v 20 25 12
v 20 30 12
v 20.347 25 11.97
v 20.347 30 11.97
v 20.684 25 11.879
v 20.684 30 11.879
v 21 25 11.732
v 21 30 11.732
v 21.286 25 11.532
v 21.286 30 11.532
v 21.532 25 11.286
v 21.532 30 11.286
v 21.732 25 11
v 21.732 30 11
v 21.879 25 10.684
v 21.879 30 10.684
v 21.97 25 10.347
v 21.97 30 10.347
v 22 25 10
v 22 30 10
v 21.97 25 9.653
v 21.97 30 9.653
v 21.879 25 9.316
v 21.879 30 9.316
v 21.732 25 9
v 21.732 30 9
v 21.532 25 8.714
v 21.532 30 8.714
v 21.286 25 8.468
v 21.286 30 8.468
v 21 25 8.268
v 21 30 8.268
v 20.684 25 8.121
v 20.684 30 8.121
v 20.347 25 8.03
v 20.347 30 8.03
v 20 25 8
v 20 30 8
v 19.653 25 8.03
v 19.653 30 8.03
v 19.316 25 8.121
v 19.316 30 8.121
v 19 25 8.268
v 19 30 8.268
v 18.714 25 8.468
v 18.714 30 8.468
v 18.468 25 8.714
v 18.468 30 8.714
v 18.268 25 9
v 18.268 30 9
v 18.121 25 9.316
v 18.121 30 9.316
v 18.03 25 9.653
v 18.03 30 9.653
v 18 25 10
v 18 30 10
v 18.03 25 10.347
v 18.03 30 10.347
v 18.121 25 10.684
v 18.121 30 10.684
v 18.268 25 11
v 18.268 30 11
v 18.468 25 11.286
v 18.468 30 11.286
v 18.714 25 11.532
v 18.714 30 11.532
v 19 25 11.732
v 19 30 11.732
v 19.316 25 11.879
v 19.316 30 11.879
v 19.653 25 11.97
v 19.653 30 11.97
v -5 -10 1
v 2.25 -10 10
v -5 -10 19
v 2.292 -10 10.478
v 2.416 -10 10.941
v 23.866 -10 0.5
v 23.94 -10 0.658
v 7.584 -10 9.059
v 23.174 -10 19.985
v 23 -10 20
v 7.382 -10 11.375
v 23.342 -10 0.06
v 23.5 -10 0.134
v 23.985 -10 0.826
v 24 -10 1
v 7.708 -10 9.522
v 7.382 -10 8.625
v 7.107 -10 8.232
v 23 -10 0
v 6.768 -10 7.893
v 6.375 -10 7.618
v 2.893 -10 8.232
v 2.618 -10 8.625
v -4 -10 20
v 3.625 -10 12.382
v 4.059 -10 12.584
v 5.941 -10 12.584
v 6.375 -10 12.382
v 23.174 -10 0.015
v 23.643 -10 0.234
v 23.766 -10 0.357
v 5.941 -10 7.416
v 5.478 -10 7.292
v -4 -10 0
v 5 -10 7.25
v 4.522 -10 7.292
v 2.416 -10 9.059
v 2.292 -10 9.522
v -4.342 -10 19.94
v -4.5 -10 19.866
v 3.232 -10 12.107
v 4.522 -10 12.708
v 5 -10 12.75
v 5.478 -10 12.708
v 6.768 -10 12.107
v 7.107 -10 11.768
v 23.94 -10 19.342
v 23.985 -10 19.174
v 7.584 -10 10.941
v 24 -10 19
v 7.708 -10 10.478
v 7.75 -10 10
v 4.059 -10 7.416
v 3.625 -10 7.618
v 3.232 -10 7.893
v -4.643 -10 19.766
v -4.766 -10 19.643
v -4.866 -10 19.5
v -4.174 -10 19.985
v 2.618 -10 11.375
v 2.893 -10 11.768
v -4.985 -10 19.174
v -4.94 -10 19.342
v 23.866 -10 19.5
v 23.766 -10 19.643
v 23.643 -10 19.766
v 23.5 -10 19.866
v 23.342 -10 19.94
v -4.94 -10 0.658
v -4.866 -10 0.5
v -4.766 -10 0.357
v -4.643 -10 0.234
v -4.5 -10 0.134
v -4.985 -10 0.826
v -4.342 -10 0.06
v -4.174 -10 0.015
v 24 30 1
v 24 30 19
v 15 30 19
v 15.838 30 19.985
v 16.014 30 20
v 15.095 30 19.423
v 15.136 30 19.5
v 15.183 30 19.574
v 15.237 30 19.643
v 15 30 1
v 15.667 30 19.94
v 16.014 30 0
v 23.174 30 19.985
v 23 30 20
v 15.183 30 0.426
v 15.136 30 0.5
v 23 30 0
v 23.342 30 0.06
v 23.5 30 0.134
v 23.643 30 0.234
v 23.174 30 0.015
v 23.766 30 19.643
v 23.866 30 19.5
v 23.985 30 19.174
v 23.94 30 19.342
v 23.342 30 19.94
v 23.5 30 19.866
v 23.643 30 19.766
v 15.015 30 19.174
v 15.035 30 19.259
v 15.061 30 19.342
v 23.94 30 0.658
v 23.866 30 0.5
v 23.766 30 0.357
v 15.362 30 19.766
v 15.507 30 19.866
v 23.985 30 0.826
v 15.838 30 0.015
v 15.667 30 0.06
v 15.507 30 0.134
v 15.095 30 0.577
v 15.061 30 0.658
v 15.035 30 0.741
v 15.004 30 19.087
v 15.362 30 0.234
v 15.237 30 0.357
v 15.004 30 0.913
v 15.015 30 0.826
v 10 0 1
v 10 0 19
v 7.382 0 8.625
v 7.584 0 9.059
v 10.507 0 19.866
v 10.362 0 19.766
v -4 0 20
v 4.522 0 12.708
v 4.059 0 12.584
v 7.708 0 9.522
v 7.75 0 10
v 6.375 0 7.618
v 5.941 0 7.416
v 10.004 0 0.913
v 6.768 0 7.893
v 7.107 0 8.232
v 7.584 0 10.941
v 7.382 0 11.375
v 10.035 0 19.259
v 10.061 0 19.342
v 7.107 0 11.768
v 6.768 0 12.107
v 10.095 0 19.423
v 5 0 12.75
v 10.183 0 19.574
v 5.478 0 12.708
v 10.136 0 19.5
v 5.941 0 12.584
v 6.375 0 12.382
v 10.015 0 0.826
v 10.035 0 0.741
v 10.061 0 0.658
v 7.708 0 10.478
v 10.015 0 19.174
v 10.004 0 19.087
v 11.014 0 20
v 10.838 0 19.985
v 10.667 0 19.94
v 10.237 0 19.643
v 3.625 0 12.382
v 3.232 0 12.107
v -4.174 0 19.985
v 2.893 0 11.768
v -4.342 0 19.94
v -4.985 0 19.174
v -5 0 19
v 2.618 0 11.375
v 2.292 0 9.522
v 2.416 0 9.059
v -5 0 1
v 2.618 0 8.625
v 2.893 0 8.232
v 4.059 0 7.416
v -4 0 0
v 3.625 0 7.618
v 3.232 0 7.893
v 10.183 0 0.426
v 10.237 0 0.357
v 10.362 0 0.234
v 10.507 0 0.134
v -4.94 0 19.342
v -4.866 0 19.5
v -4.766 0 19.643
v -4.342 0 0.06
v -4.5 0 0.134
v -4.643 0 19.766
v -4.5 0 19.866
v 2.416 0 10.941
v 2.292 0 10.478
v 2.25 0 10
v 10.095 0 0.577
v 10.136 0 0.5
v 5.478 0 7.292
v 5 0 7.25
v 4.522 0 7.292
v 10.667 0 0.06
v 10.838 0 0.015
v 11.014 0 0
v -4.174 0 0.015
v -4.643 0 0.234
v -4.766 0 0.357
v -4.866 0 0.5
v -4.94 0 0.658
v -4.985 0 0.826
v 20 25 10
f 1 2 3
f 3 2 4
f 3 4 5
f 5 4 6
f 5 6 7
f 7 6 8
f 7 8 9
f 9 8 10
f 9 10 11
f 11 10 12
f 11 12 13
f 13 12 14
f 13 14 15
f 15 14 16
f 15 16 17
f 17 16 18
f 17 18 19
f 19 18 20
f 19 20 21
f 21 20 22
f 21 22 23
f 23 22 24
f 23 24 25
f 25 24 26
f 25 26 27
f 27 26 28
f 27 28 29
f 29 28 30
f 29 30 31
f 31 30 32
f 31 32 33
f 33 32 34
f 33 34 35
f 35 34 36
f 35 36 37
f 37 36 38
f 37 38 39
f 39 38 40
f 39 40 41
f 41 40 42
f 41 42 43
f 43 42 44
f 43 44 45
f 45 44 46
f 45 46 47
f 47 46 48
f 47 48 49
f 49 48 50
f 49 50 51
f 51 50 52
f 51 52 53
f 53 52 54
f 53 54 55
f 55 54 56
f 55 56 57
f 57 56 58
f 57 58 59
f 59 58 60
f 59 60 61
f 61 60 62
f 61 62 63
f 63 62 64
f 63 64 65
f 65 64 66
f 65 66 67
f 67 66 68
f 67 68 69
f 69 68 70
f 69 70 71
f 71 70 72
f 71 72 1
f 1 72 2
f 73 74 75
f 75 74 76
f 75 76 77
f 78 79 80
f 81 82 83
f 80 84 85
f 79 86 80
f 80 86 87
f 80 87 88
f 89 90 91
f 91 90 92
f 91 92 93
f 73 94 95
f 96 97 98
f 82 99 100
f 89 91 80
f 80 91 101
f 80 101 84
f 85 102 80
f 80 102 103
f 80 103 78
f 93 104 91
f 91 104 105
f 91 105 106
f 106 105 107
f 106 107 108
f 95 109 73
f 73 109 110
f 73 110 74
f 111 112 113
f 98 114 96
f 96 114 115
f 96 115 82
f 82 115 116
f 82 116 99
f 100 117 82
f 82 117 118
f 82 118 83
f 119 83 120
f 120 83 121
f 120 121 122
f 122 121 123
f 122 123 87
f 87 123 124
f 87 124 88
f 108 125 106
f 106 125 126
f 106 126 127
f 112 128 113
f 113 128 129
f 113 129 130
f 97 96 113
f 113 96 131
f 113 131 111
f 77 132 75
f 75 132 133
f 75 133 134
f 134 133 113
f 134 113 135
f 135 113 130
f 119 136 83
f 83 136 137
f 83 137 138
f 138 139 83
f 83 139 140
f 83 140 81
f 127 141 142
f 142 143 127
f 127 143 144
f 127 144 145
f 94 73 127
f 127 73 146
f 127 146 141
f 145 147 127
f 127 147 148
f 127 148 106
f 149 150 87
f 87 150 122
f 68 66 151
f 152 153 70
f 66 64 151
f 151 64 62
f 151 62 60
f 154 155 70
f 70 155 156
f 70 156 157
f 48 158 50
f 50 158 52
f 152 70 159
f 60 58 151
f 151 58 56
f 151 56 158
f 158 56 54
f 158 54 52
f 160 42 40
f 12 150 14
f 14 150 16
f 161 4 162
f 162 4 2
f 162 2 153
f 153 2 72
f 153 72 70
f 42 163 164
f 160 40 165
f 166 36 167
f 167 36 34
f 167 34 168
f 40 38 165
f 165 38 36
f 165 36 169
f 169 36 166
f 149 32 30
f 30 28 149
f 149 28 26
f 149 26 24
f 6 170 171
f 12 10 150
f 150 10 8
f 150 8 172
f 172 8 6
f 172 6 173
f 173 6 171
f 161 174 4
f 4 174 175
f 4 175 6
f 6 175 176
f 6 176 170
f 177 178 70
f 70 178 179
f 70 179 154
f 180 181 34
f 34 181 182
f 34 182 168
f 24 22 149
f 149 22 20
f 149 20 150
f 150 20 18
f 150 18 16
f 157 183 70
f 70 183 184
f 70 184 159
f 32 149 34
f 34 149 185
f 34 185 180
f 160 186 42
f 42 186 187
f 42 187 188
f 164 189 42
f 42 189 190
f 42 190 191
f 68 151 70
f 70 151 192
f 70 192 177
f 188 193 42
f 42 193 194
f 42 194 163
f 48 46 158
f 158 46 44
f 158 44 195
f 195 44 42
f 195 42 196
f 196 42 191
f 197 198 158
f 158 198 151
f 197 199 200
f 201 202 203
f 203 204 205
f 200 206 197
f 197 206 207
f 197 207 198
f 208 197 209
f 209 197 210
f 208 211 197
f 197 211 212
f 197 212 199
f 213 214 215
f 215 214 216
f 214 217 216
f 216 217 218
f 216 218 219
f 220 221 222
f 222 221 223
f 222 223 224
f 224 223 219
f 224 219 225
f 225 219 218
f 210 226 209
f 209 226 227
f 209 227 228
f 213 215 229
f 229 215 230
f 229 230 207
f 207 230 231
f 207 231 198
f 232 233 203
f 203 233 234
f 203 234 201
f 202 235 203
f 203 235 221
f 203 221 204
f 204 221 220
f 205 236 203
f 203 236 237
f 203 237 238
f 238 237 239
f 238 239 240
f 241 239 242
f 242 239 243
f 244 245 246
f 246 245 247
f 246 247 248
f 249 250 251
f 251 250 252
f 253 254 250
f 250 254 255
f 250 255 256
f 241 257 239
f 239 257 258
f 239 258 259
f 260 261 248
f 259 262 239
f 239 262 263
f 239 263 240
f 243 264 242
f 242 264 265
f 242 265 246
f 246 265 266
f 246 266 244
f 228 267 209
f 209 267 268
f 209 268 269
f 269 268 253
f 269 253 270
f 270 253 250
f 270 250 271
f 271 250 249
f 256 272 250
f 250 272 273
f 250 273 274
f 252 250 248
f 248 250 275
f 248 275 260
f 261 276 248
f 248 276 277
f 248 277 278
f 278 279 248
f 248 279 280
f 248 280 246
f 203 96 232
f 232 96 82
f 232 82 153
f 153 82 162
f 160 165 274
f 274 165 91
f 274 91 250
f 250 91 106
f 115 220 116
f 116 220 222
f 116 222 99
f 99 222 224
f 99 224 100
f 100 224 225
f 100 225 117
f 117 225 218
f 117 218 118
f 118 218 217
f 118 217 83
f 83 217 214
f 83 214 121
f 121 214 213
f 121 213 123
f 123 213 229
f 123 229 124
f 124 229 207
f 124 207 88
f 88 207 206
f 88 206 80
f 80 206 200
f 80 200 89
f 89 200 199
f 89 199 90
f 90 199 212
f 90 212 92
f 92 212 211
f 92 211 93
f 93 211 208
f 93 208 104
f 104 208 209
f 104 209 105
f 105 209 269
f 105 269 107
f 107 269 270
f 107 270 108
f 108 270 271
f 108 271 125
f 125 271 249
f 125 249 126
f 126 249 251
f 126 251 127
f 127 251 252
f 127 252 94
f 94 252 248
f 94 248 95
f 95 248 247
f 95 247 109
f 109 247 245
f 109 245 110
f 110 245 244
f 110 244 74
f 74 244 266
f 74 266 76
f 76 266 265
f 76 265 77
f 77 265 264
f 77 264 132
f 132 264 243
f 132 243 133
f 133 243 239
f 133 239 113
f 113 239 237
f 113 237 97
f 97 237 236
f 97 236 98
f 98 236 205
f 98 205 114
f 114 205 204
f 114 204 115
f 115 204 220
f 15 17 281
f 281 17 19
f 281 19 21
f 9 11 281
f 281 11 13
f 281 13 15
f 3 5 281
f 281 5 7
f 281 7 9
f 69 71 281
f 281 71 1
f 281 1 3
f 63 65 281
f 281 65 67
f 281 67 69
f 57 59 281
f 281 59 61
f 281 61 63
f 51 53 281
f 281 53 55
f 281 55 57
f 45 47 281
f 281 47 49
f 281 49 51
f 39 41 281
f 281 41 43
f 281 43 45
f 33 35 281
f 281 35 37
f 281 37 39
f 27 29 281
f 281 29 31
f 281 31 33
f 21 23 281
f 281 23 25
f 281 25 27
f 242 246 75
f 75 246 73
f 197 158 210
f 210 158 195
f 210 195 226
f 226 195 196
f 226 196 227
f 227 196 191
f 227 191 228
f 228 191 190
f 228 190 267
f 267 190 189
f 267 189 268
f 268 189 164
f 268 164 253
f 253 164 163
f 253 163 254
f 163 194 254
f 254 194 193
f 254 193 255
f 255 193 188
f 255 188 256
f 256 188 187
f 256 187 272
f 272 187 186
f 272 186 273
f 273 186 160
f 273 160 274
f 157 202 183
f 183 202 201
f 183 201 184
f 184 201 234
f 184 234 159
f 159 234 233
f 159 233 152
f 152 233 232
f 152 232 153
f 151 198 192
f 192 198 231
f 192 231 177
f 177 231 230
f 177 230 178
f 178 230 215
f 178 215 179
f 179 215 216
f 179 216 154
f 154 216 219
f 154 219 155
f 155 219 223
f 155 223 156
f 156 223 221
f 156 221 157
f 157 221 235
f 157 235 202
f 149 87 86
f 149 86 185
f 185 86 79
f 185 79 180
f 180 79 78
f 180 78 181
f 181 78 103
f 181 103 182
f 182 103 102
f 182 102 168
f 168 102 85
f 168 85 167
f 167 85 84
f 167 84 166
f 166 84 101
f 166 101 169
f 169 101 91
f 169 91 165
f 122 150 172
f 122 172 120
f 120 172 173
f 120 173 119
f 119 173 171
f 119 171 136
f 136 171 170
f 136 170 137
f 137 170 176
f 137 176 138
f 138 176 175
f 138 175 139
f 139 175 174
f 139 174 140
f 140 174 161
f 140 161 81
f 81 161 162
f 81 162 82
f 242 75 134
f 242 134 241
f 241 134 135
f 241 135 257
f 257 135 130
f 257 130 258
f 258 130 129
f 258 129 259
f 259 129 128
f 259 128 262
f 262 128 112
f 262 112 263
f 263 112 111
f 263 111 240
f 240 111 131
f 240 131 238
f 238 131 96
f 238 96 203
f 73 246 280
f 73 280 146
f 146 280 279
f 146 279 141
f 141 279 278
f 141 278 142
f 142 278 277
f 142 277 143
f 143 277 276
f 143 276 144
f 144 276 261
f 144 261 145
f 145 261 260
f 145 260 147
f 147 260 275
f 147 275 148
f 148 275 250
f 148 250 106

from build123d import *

# Parameters (mm, degrees)
EXTRUDE_1_DEPTH     = 20
SKETCH_2_R          = 2
SKETCH_2_R_2        = 2.75
CUT_EXTRUDE_1_DEPTH = 51.754310162
EXTRUDE_START       = -35
SKETCH_3_R          = 2
EXTRUDE_2_DEPTH     = 35
SKETCH_4_W          = 5
SKETCH_4_H          = 20
EXTRUDE_3_DEPTH     = 10
FILLET_2_R          = 1


with BuildPart() as part:
    # ｽｹｯﾁ1 → ﾎﾞｽ - 押し出し1 (new body)
    with BuildSketch(Plane.XY):
        Polygon((0, 0), (10, 0), (15, 30), (24, 30), (24, -10), (0, -10), align=None)
    extrude(amount=EXTRUDE_1_DEPTH)

    # ｽｹｯﾁ2 → ｶｯﾄ - 押し出し1 (cut, through all)
    with BuildSketch(Plane(origin=(0, 30, 0), x_dir=(1, 0, 0), z_dir=(0, 1, 0))):
        with Locations(Location((20, -10, 0), (0, 0, 270))):
            Circle(SKETCH_2_R)
        with Locations(Location((5, -10, 0), (0, 0, 270))):
            Circle(SKETCH_2_R_2)
    extrude(amount=-CUT_EXTRUDE_1_DEPTH, mode=Mode.SUBTRACT)

    # ｽｹｯﾁ3 → ﾎﾞｽ - 押し出し2 (add)
    with BuildSketch(Plane.XZ.offset(10).offset(EXTRUDE_START)):
        with Locations(Location((20, 10, 0), (0, 0, 90))):
            Circle(SKETCH_3_R)
    extrude(amount=EXTRUDE_2_DEPTH)

    # ｽｹｯﾁ4 → ﾎﾞｽ - 押し出し3 (add)
    with BuildSketch(Plane(origin=(0, 0, 0), x_dir=(1, 0, 0), z_dir=(0, 1, 0))):
        with Locations((-2.5, -10)):
            Rectangle(SKETCH_4_W, SKETCH_4_H)
    extrude(amount=-EXTRUDE_3_DEPTH)

    # ﾌｨﾚｯﾄ2
    fillet_2_edges = [part.edges().sort_by_distance(p)[0] for p in [
        (24, 10, 20),
        (12.5, 15, 20),
        (-5, -5, 20),
        (-5, -5, 0),
        (12.5, 15, 0),
        (24, 10, 0),
    ]]
    fillet(fillet_2_edges, radius=FILLET_2_R)


solid = part.part
